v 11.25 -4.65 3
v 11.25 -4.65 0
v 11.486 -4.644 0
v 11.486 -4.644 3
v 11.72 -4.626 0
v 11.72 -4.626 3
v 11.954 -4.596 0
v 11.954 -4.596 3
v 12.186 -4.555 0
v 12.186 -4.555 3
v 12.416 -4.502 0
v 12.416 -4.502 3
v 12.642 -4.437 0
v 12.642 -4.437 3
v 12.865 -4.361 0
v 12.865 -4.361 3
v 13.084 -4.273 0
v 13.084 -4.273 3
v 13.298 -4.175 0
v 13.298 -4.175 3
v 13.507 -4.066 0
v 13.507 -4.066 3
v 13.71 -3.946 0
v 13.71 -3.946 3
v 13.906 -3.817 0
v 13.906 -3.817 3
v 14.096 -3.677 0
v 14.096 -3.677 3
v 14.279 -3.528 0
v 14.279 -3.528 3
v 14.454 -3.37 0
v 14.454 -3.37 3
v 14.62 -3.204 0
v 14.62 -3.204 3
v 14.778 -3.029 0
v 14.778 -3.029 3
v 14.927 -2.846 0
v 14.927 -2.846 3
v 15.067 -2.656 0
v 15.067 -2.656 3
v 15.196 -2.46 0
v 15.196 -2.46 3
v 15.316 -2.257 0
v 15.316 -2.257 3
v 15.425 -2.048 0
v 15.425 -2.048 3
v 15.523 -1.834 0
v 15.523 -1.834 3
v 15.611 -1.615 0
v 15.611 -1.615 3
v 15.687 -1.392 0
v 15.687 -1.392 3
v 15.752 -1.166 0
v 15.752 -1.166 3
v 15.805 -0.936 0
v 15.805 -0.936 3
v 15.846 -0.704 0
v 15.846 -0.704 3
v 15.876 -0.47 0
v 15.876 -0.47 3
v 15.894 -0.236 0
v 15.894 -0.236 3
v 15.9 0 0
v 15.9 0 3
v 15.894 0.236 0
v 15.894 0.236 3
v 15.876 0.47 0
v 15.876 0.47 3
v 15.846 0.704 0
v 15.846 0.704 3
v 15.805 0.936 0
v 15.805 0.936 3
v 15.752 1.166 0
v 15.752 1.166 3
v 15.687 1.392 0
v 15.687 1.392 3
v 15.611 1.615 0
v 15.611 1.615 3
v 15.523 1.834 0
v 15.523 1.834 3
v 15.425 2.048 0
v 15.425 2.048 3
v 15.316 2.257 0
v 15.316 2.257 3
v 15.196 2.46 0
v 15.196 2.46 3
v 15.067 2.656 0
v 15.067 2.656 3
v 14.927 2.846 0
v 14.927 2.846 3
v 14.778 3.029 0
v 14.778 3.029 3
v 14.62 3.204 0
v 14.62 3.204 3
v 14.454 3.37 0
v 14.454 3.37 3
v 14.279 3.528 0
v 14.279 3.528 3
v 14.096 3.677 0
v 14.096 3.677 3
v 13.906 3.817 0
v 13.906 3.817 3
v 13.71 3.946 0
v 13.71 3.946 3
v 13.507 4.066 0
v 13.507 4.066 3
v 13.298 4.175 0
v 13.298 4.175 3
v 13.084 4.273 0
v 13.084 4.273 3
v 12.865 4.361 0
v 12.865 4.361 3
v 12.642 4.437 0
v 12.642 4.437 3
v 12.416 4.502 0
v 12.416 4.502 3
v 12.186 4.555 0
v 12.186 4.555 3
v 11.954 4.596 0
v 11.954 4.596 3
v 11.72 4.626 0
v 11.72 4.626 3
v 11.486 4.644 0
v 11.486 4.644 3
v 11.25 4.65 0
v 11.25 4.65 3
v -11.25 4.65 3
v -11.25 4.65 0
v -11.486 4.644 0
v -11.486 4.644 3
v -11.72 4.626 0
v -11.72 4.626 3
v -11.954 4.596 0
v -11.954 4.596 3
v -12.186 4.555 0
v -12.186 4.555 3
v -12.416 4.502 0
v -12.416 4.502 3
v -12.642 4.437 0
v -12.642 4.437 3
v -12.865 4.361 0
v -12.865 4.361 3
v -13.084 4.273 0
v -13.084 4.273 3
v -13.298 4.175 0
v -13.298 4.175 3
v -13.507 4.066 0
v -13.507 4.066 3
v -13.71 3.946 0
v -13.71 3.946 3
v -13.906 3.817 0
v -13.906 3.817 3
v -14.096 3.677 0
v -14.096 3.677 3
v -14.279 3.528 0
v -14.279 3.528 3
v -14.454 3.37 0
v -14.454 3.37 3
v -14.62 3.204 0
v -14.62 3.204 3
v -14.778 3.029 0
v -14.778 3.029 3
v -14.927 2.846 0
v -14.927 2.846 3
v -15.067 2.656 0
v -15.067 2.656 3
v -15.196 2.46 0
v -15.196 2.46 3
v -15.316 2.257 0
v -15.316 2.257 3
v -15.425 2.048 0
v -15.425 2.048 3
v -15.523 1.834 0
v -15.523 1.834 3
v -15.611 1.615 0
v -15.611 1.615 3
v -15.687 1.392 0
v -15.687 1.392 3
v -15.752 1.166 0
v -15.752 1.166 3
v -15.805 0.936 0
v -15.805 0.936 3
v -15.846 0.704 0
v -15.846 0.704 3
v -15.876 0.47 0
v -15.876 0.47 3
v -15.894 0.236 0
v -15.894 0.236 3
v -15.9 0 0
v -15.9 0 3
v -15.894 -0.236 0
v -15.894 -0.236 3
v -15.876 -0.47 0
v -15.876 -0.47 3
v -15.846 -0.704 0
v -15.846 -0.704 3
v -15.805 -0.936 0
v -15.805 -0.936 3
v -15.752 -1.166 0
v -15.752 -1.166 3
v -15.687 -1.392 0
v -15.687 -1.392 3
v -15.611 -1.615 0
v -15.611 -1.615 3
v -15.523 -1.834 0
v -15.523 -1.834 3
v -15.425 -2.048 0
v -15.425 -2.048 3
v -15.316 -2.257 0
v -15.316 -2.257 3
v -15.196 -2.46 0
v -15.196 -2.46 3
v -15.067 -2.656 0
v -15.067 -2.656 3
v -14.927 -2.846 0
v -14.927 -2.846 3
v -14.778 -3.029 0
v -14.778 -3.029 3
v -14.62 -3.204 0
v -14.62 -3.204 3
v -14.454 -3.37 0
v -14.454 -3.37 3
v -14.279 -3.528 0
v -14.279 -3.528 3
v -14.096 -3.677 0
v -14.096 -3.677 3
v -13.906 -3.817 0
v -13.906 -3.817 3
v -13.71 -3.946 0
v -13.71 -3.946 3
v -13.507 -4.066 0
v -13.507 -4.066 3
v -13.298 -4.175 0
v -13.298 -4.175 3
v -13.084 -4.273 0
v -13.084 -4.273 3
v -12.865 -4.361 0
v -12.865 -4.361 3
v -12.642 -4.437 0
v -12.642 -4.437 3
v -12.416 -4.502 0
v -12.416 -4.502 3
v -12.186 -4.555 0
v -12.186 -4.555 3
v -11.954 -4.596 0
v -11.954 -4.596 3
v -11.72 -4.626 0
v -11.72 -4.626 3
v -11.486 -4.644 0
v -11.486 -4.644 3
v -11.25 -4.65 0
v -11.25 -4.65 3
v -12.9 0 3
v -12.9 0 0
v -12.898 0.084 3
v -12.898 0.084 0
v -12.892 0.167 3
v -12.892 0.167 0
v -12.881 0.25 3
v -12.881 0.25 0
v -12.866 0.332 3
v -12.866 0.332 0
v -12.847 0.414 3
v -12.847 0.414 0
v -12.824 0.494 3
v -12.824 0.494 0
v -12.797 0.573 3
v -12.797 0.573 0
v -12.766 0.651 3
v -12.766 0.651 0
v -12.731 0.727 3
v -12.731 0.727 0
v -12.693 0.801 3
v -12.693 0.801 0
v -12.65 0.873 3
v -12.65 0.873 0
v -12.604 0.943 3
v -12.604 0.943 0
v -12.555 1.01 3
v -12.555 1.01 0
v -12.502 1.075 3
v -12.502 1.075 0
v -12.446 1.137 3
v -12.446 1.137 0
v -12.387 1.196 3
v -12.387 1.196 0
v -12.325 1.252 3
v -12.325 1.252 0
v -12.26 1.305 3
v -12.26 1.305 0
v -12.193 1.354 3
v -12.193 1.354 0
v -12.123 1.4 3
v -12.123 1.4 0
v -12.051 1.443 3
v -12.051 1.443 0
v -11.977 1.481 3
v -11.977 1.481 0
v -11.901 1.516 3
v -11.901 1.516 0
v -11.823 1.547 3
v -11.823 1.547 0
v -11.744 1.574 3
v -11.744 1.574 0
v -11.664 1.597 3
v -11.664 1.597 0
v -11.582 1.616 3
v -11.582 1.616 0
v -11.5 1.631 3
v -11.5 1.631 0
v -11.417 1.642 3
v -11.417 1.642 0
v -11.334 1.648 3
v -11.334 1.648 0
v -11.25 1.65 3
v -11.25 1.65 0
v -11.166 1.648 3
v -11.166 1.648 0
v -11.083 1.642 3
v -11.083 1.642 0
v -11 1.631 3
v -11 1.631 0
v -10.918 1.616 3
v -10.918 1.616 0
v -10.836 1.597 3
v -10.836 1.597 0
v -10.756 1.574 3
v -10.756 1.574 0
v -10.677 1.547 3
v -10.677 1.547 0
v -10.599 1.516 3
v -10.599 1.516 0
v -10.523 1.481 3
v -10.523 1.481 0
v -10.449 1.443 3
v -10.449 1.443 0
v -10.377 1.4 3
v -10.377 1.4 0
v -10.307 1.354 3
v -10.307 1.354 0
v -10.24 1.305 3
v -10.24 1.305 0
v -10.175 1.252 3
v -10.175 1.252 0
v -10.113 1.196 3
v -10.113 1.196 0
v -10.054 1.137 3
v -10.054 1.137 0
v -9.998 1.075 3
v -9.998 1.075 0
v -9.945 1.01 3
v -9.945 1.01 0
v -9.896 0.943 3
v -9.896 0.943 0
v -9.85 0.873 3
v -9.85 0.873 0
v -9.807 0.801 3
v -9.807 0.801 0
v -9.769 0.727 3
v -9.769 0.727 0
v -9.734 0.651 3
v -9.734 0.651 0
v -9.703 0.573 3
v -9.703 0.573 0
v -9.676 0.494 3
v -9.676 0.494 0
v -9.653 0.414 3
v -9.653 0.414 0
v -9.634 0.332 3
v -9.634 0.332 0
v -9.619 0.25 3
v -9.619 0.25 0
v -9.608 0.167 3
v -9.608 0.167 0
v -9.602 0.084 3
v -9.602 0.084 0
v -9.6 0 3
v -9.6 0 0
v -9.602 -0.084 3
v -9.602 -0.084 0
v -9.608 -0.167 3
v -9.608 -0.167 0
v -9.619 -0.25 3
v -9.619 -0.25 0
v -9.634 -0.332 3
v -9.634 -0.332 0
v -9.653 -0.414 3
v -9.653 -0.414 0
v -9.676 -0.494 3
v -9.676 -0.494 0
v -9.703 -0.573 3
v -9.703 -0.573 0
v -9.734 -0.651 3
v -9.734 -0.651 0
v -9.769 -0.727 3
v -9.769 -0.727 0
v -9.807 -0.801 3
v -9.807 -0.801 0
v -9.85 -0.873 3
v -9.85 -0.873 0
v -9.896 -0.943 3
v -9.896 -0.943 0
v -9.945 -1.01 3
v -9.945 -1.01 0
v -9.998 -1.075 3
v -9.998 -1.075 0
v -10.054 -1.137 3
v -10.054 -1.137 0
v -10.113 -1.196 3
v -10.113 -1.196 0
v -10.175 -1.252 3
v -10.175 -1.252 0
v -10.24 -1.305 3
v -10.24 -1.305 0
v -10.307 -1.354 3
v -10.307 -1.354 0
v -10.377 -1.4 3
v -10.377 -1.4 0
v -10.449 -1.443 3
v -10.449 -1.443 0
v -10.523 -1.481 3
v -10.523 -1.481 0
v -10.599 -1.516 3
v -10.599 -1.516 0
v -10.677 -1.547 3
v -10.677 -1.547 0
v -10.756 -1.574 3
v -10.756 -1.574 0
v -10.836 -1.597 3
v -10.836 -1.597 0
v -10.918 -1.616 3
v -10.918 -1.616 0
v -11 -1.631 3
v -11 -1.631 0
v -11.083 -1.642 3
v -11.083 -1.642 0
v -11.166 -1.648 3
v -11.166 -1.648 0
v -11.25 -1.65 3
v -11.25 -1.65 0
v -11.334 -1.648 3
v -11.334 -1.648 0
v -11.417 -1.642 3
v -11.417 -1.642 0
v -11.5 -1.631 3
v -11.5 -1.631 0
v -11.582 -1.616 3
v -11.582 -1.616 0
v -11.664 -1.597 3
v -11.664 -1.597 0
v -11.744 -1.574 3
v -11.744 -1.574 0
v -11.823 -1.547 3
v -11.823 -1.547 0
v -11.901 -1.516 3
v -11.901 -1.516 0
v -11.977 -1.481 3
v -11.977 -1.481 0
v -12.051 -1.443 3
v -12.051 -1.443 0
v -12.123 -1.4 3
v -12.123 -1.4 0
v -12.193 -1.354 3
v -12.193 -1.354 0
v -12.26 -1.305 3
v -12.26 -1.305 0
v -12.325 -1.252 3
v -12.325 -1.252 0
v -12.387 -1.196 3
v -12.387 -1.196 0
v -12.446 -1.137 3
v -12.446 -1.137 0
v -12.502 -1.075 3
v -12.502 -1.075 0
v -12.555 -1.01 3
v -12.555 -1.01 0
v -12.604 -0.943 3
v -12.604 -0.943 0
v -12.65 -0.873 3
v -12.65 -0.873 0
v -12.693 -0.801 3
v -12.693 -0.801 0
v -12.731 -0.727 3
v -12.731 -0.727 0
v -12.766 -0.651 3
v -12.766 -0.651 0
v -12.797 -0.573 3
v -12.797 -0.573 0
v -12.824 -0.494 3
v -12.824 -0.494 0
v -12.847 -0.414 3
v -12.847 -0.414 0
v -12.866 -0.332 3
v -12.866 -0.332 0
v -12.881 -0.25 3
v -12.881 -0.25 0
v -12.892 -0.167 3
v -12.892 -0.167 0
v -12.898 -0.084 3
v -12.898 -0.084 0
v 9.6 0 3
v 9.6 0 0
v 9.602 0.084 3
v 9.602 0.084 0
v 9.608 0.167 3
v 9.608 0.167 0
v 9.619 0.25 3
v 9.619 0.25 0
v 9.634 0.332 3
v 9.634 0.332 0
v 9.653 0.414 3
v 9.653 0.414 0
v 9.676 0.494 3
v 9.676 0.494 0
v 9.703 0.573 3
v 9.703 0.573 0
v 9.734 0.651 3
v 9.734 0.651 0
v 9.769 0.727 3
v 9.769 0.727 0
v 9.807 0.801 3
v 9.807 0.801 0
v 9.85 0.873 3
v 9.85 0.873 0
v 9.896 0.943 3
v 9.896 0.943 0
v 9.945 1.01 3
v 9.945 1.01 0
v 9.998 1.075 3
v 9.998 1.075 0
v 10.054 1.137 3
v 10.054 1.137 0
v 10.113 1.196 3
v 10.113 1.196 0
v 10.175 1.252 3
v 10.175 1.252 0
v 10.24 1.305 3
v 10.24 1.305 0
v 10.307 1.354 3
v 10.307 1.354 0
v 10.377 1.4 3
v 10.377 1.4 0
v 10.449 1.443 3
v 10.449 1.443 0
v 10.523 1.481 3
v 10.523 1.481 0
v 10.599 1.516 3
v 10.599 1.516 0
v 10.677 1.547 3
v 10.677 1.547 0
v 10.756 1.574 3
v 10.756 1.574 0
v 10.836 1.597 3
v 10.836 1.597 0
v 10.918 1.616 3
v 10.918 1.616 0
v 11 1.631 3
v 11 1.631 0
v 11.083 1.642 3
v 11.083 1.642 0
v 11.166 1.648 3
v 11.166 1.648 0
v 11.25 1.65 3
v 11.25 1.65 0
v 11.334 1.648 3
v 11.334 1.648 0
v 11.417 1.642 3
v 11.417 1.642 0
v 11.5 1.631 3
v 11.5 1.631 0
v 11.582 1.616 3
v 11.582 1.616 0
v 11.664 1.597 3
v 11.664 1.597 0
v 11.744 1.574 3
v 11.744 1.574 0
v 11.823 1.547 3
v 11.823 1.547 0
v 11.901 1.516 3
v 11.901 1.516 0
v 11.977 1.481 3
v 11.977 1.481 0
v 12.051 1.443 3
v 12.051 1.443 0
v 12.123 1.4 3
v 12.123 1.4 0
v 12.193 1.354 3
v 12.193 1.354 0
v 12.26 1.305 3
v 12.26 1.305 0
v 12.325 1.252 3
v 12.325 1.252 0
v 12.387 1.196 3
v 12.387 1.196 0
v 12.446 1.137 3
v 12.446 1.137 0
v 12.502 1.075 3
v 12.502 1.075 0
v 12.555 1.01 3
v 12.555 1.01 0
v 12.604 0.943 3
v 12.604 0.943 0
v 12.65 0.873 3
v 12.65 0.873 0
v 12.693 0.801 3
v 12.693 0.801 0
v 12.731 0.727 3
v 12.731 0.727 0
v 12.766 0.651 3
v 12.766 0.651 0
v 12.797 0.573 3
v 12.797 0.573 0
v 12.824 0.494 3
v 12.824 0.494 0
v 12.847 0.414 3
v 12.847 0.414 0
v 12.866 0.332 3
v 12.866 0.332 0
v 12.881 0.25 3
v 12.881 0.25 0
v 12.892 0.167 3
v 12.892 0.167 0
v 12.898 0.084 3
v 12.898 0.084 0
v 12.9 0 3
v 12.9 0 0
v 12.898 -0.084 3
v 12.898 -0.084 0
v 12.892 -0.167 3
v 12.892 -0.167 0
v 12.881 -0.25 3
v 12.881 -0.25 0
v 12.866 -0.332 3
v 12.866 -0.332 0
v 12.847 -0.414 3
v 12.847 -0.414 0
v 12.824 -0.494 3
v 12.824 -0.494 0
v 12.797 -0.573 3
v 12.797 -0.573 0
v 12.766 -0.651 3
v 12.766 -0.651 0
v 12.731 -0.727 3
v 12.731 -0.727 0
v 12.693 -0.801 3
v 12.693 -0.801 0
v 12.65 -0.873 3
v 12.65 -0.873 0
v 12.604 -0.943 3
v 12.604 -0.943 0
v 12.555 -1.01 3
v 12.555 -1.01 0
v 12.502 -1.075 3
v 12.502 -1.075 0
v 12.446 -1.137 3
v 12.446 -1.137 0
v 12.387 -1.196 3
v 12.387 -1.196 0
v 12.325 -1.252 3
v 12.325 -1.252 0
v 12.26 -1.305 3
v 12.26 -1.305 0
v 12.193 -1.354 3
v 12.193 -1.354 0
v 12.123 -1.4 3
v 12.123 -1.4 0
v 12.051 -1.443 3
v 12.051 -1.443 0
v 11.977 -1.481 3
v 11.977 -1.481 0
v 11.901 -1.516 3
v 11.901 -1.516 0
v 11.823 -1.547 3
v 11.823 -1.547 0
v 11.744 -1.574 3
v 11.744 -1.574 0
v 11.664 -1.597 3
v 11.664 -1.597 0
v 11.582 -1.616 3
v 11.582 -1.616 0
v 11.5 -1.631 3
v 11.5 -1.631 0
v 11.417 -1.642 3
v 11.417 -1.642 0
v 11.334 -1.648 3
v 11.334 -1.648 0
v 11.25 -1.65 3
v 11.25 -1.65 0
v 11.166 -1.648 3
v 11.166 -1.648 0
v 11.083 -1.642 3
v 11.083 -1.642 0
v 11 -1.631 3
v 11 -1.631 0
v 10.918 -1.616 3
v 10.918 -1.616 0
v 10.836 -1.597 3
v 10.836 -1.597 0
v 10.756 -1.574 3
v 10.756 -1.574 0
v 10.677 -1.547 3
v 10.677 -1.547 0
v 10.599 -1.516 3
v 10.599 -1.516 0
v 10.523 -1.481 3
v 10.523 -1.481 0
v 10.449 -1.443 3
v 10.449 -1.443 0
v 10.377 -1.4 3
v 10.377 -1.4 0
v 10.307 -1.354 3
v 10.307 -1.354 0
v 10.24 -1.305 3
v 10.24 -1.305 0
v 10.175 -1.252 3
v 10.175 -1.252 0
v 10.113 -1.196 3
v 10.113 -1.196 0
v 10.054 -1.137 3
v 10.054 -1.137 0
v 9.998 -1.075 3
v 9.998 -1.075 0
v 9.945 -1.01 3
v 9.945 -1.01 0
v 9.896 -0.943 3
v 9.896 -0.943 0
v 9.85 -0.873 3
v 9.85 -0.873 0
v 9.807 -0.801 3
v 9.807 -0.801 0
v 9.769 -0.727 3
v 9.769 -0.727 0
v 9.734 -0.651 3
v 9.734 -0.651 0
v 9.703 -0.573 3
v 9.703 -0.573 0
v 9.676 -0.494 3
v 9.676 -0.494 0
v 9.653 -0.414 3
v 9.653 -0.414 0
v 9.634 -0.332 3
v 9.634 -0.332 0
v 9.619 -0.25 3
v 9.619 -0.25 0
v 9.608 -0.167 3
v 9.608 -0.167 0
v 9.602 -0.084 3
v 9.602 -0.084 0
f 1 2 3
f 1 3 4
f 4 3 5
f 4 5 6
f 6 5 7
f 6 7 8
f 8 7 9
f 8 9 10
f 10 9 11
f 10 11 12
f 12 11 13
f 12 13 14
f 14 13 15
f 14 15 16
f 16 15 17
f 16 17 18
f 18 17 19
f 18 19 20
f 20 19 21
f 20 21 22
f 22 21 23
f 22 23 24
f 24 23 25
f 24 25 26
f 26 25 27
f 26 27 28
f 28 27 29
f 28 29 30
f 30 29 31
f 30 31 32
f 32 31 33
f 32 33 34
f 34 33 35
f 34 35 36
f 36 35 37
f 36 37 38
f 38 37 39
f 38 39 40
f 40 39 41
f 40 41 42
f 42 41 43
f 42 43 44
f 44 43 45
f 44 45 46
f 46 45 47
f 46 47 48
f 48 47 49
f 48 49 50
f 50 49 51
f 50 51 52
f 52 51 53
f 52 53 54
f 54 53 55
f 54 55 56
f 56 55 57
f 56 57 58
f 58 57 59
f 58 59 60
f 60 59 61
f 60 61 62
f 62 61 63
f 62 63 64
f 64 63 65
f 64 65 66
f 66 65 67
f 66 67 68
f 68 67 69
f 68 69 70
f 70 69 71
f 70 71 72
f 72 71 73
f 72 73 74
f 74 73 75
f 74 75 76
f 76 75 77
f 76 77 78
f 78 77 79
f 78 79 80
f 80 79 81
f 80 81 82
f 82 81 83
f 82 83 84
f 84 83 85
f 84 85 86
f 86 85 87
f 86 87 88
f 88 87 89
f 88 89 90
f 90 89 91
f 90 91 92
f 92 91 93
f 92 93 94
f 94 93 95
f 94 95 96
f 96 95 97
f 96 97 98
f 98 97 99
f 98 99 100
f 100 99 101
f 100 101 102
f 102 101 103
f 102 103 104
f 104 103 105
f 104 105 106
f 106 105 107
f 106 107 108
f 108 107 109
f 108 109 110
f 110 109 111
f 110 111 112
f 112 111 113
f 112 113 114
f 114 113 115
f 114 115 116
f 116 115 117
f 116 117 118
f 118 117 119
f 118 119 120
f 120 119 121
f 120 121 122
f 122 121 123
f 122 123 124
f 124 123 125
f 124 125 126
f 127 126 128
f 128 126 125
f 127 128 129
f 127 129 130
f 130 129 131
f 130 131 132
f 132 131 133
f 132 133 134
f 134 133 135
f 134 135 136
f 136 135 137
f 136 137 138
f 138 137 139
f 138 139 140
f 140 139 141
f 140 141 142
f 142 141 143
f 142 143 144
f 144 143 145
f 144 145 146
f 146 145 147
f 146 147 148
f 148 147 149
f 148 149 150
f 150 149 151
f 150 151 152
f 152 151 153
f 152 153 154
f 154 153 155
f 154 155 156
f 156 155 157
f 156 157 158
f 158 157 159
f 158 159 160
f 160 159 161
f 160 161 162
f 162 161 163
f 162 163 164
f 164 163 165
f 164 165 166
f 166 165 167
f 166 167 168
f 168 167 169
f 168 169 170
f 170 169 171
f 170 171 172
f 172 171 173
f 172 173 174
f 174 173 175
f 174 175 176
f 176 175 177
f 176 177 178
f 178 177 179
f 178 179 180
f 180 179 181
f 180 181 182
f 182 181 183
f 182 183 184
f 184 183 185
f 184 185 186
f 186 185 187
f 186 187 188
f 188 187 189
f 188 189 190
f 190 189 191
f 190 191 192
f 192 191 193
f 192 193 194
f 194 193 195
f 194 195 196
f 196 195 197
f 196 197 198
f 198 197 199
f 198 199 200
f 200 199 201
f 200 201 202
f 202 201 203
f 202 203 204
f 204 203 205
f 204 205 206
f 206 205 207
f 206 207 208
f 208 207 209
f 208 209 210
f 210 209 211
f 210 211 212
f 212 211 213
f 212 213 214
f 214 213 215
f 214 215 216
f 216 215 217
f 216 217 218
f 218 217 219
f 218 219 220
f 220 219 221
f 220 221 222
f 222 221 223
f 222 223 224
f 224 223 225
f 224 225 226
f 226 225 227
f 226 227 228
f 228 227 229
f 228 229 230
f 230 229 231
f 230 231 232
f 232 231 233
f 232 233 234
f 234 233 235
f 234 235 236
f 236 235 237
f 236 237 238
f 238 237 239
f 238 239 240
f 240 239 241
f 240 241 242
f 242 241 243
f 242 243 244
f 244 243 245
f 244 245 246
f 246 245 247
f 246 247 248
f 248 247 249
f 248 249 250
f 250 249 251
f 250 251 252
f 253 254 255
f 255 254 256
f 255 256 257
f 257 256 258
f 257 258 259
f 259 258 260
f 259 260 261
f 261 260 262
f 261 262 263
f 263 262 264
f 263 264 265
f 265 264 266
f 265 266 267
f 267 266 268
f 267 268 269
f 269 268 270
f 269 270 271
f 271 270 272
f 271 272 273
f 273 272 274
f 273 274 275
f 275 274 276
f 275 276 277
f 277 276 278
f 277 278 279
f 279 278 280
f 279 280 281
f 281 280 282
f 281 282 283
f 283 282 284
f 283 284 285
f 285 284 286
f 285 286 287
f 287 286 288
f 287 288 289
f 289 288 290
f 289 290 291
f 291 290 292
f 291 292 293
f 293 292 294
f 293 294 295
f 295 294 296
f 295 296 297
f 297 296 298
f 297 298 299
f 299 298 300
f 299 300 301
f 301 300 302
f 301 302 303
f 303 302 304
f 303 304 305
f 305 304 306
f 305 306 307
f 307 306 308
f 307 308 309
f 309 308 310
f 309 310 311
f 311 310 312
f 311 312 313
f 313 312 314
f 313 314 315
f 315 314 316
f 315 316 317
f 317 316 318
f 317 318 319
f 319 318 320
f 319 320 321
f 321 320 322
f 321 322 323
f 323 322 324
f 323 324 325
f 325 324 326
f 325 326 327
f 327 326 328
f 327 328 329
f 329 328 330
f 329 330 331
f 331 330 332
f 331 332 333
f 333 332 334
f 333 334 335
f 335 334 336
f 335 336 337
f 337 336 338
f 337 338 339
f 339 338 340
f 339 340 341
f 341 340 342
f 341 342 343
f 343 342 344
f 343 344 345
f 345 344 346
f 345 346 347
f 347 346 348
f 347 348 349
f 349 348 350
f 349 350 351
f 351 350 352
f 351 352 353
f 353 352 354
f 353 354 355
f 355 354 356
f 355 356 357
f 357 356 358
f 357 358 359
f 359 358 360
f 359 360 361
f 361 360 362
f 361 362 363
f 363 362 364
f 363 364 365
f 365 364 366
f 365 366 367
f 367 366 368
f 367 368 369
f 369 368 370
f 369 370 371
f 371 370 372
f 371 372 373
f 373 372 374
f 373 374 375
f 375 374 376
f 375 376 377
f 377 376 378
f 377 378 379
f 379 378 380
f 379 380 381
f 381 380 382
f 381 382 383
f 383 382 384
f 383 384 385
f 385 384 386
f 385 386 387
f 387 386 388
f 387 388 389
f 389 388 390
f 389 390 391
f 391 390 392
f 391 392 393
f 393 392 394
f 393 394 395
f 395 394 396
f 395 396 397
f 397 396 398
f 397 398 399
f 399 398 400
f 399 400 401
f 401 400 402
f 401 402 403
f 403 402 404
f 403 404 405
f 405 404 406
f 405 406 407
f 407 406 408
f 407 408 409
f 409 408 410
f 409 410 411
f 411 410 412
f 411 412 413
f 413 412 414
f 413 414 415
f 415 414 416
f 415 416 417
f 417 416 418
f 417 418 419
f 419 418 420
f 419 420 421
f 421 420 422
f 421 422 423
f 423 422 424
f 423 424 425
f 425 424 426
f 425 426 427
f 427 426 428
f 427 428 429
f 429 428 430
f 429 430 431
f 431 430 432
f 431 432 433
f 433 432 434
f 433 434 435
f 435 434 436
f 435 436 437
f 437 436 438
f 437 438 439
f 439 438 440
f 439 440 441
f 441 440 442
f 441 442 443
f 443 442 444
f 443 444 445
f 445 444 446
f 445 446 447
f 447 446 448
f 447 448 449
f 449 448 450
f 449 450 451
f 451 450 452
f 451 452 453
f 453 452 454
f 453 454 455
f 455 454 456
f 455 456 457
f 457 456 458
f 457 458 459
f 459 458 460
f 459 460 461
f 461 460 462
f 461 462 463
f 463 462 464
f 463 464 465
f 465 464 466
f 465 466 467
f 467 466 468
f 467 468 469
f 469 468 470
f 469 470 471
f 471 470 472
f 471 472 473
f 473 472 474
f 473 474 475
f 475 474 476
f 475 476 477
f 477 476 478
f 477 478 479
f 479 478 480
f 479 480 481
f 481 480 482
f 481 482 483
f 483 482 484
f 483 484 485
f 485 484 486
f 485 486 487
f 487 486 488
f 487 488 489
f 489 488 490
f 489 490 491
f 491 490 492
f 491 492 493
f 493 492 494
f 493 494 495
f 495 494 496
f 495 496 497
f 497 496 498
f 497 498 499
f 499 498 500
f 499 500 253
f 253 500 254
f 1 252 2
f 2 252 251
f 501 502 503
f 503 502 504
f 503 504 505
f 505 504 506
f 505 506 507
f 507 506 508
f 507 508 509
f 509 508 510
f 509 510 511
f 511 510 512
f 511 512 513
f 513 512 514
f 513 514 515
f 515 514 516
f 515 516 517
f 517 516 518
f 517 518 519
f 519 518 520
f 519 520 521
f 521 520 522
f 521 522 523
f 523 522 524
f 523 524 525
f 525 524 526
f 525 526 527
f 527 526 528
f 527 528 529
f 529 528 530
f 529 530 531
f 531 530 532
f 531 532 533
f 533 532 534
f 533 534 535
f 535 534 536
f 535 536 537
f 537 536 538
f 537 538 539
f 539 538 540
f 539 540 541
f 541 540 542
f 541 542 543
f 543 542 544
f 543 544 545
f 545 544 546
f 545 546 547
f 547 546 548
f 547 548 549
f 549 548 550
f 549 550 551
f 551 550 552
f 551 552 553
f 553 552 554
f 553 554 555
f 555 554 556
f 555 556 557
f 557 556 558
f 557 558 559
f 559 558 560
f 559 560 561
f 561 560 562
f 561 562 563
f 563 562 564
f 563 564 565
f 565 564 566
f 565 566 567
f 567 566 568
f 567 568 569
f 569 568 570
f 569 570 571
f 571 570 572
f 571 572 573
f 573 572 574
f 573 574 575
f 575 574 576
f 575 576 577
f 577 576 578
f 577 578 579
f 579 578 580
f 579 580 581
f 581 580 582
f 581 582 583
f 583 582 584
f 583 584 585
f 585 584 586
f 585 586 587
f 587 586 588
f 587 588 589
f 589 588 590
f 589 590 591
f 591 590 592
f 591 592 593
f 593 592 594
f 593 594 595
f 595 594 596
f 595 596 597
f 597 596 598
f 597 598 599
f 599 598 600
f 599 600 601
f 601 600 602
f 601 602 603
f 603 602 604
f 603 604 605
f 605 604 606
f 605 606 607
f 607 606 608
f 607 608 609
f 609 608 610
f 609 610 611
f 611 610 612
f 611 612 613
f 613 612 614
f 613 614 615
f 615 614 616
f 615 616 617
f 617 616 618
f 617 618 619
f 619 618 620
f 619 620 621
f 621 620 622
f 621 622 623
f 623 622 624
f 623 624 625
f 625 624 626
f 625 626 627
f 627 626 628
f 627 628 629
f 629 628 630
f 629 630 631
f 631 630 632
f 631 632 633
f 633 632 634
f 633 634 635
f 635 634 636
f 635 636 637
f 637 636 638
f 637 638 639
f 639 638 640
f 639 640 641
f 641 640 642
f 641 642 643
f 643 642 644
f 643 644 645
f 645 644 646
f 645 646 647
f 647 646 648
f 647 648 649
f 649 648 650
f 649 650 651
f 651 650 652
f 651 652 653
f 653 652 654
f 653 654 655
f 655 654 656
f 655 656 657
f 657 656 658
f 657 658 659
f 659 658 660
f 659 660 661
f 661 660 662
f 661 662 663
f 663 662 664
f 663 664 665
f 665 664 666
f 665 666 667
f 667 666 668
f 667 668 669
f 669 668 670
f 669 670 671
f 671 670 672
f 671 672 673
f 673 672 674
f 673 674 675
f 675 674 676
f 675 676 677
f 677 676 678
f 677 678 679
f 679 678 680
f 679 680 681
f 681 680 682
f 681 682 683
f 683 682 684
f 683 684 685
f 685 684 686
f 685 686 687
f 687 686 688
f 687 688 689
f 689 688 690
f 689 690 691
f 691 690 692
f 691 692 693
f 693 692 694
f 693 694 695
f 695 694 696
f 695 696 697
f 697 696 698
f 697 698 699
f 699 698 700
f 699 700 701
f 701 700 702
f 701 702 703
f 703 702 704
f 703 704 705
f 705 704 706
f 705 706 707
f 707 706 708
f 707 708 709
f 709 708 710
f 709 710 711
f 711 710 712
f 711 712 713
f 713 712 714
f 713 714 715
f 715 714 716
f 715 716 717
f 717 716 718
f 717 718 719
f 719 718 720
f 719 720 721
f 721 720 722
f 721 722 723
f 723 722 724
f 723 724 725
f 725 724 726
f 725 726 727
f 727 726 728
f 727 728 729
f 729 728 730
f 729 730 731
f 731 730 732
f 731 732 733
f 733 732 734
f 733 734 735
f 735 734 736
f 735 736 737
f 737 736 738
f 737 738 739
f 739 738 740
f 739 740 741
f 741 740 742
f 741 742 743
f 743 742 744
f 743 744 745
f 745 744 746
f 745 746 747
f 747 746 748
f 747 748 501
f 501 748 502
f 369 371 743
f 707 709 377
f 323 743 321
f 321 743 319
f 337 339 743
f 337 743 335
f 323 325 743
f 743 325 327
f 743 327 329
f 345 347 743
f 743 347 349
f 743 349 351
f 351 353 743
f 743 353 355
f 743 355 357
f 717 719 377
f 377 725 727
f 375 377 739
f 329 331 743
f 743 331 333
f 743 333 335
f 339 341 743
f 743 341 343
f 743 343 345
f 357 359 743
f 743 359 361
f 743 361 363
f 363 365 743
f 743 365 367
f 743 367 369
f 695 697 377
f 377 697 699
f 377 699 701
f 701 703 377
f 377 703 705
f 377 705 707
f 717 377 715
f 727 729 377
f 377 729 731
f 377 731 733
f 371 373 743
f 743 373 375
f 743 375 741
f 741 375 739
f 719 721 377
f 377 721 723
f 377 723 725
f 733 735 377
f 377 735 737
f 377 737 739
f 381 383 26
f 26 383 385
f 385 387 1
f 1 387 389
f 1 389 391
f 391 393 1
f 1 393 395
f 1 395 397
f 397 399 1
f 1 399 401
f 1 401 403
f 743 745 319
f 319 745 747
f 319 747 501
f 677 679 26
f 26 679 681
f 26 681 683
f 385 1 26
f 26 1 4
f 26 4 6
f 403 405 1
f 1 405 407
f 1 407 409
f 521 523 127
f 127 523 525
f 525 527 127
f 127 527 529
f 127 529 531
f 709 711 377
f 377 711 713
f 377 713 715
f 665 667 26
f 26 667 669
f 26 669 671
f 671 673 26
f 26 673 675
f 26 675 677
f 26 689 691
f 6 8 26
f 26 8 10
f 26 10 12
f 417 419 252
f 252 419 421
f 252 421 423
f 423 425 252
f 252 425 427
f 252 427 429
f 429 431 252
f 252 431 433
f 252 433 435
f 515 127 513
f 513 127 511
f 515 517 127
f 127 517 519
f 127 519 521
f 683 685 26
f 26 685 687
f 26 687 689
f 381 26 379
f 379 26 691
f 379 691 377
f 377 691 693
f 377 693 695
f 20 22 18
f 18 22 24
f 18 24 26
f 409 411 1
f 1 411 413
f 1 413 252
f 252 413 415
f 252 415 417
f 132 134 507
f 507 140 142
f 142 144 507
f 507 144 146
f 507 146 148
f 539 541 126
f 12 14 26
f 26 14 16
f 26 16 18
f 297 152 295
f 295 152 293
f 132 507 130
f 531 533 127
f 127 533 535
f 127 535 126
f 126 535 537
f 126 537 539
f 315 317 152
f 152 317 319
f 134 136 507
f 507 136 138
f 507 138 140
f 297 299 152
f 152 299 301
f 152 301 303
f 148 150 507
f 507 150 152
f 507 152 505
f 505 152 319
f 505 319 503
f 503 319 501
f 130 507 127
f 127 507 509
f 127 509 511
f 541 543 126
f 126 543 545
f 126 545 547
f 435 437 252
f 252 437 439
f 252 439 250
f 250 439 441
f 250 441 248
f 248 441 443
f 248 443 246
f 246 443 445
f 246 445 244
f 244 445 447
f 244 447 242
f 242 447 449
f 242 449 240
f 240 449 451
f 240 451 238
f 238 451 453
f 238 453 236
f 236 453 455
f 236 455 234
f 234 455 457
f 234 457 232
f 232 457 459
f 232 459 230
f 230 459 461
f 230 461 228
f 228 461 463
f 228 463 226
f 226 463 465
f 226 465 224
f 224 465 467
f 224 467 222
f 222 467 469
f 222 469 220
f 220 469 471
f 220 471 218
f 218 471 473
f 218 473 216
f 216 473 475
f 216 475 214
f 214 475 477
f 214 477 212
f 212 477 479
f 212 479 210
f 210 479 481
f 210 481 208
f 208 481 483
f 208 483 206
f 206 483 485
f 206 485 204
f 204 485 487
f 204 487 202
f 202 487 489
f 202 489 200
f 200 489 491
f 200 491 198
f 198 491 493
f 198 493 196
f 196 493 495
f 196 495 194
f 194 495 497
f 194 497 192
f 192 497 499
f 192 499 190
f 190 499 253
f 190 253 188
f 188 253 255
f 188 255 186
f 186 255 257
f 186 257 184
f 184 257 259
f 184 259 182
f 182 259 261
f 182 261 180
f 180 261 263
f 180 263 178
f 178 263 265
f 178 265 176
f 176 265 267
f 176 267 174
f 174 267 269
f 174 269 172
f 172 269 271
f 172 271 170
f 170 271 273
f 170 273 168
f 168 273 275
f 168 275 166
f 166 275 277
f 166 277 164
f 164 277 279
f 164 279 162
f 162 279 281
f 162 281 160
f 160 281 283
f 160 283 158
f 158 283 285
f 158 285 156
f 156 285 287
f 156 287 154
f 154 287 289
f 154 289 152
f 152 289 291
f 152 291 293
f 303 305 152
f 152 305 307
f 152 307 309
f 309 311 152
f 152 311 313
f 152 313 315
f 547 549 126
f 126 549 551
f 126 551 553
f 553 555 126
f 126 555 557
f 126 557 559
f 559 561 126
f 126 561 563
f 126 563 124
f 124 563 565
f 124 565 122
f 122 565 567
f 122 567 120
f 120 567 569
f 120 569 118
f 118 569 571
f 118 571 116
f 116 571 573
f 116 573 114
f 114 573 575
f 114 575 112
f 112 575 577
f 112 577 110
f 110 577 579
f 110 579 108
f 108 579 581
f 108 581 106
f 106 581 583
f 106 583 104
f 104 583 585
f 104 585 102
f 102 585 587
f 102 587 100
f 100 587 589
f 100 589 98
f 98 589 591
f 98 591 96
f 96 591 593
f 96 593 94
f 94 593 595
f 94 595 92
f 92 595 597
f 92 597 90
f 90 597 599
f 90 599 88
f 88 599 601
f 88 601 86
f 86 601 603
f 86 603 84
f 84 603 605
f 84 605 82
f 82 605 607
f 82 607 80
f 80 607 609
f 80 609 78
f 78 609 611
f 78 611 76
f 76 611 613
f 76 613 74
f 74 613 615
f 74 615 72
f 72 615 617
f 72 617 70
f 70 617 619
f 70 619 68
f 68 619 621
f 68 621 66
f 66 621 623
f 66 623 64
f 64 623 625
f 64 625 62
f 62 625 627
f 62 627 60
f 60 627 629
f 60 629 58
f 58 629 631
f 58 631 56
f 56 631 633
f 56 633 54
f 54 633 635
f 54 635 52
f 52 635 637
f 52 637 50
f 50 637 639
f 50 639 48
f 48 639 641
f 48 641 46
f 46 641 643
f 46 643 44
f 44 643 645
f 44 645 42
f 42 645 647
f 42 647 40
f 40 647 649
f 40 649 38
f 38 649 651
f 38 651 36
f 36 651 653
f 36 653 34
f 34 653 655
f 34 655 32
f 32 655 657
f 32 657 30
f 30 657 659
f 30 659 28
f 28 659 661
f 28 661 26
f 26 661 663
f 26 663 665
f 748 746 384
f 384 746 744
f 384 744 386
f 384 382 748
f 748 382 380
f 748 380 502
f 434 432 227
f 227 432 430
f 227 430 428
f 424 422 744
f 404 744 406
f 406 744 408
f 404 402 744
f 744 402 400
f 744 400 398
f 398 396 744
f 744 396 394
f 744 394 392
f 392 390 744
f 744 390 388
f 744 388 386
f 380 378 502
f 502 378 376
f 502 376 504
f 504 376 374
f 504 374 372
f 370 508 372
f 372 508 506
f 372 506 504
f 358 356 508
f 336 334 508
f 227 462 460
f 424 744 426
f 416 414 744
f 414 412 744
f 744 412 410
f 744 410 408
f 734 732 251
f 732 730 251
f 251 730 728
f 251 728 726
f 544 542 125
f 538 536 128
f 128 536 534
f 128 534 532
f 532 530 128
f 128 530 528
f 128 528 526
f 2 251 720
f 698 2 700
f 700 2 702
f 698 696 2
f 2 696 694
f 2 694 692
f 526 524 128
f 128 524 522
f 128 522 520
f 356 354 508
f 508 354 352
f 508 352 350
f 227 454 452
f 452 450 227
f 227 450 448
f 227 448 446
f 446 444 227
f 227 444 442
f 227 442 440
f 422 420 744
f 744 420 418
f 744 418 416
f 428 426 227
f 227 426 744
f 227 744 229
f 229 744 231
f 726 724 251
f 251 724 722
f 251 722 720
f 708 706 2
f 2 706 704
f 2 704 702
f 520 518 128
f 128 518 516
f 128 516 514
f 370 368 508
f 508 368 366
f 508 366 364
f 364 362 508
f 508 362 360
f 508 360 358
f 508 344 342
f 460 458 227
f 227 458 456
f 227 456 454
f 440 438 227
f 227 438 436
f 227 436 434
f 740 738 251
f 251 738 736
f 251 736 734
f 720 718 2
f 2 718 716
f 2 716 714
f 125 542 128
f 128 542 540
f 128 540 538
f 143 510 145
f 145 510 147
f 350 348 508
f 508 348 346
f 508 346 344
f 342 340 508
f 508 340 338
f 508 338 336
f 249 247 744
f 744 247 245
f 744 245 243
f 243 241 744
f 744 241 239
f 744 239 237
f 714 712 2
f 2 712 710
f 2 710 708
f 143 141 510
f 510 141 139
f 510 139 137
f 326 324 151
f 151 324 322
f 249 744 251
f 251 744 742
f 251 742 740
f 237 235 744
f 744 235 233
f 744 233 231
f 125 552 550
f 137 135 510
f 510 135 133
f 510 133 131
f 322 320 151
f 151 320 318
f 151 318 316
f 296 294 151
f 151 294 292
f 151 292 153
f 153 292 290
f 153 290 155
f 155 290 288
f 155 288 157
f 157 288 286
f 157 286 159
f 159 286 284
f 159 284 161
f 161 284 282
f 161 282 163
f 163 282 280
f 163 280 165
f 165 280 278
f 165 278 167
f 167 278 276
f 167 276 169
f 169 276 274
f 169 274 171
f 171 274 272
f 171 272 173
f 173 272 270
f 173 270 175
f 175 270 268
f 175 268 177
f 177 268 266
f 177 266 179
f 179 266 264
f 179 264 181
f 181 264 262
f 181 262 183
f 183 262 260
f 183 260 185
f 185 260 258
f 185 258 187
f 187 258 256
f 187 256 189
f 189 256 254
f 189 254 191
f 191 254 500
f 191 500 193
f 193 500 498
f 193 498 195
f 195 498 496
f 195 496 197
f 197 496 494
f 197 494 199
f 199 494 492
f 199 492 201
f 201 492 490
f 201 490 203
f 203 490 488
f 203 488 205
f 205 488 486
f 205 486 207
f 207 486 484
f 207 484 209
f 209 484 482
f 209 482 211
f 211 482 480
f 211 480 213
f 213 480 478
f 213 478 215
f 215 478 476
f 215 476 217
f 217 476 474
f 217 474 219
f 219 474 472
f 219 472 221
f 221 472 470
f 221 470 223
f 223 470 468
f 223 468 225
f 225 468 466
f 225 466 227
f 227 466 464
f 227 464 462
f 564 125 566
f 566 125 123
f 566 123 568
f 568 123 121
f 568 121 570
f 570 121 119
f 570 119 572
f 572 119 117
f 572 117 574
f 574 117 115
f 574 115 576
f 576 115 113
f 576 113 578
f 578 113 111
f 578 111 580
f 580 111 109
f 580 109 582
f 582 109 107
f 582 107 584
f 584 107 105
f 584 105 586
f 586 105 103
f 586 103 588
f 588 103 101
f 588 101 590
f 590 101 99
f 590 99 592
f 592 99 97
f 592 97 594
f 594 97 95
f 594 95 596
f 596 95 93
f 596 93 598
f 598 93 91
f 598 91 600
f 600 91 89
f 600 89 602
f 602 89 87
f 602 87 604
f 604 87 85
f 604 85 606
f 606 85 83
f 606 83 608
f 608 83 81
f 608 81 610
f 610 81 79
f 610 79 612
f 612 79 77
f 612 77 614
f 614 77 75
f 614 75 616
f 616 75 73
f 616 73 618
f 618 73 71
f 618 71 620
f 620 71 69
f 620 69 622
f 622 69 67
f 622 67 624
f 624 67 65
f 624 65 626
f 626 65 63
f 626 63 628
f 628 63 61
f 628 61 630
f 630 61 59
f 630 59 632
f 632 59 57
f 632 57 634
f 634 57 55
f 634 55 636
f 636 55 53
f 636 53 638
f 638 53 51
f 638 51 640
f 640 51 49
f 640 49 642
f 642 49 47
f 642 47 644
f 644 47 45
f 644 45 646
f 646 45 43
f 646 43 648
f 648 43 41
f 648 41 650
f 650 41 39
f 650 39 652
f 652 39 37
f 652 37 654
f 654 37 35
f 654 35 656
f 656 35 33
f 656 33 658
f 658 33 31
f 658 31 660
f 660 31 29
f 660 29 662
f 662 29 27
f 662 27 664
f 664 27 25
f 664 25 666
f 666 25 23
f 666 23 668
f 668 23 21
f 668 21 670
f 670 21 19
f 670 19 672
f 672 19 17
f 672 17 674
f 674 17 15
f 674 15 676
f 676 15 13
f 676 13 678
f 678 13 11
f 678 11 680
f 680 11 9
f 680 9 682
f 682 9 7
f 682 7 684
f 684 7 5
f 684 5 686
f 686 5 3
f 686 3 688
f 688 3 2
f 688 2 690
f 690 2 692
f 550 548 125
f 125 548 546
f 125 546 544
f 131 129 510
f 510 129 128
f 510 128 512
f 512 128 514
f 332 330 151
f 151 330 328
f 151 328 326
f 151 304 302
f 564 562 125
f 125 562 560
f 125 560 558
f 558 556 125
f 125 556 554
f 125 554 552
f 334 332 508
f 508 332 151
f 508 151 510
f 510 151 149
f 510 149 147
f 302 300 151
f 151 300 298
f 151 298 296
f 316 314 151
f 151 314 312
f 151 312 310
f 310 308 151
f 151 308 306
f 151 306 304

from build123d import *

# Parameters (mm, degrees)
EXTRUDE_1_DEPTH = 3


with BuildPart() as part:
    # Эскиз1 → Бобышка-Вытянуть1 (new body)
    with BuildSketch(Plane.XY):
        with BuildLine():
            ThreePointArc((-6.6, 0), (-7.961953467, -3.288046533), (-11.25, -4.65))
            Line((-11.25, -4.65), (11.25, -4.65))
            ThreePointArc((11.25, -4.65), (6.6, 0), (11.25, 4.65))
            Line((11.25, 4.65), (-11.25, 4.65))
            ThreePointArc((-11.25, 4.65), (-7.961953467, 3.288046533), (-6.6, 0))
        make_face()
        with BuildLine():
            ThreePointArc((11.25, 4.65), (6.6, 0), (11.25, -4.65))
            Line((11.25, -4.65), (11.25, -1.65))
            ThreePointArc((11.25, -1.65), (9.6, 0), (11.25, 1.65))
            Line((11.25, 1.65), (11.25, 4.65))
        make_face()
        with BuildLine():
            Line((11.25, -1.65), (11.25, -4.65))
            ThreePointArc((11.25, -4.65), (14.538046533, -3.288046533), (15.9, 0))
            ThreePointArc((15.9, 0), (14.538046533, 3.288046533), (11.25, 4.65))
            Line((11.25, 4.65), (11.25, 1.65))
            ThreePointArc((11.25, 1.65), (12.416726189, 1.166726189), (12.9, 0))
            ThreePointArc((12.9, 0), (12.416726189, -1.166726189), (11.25, -1.65))
        make_face()
        with BuildLine():
            ThreePointArc((-11.25, 4.65), (-15.9, 0), (-11.25, -4.65))
            Line((-11.25, -4.65), (-11.25, -1.65))
            ThreePointArc((-11.25, -1.65), (-12.9, 0), (-11.25, 1.65))
            Line((-11.25, 1.65), (-11.25, 4.65))
        make_face()
        with BuildLine():
            Line((-11.25, -1.65), (-11.25, -4.65))
            ThreePointArc((-11.25, -4.65), (-7.961953467, -3.288046533), (-6.6, 0))
            ThreePointArc((-6.6, 0), (-7.961953467, 3.288046533), (-11.25, 4.65))
            Line((-11.25, 4.65), (-11.25, 1.65))
            ThreePointArc((-11.25, 1.65), (-10.083273811, 1.166726189), (-9.6, 0))
            ThreePointArc((-9.6, 0), (-10.083273811, -1.166726189), (-11.25, -1.65))
        make_face()
    extrude(amount=EXTRUDE_1_DEPTH)


solid = part.part
